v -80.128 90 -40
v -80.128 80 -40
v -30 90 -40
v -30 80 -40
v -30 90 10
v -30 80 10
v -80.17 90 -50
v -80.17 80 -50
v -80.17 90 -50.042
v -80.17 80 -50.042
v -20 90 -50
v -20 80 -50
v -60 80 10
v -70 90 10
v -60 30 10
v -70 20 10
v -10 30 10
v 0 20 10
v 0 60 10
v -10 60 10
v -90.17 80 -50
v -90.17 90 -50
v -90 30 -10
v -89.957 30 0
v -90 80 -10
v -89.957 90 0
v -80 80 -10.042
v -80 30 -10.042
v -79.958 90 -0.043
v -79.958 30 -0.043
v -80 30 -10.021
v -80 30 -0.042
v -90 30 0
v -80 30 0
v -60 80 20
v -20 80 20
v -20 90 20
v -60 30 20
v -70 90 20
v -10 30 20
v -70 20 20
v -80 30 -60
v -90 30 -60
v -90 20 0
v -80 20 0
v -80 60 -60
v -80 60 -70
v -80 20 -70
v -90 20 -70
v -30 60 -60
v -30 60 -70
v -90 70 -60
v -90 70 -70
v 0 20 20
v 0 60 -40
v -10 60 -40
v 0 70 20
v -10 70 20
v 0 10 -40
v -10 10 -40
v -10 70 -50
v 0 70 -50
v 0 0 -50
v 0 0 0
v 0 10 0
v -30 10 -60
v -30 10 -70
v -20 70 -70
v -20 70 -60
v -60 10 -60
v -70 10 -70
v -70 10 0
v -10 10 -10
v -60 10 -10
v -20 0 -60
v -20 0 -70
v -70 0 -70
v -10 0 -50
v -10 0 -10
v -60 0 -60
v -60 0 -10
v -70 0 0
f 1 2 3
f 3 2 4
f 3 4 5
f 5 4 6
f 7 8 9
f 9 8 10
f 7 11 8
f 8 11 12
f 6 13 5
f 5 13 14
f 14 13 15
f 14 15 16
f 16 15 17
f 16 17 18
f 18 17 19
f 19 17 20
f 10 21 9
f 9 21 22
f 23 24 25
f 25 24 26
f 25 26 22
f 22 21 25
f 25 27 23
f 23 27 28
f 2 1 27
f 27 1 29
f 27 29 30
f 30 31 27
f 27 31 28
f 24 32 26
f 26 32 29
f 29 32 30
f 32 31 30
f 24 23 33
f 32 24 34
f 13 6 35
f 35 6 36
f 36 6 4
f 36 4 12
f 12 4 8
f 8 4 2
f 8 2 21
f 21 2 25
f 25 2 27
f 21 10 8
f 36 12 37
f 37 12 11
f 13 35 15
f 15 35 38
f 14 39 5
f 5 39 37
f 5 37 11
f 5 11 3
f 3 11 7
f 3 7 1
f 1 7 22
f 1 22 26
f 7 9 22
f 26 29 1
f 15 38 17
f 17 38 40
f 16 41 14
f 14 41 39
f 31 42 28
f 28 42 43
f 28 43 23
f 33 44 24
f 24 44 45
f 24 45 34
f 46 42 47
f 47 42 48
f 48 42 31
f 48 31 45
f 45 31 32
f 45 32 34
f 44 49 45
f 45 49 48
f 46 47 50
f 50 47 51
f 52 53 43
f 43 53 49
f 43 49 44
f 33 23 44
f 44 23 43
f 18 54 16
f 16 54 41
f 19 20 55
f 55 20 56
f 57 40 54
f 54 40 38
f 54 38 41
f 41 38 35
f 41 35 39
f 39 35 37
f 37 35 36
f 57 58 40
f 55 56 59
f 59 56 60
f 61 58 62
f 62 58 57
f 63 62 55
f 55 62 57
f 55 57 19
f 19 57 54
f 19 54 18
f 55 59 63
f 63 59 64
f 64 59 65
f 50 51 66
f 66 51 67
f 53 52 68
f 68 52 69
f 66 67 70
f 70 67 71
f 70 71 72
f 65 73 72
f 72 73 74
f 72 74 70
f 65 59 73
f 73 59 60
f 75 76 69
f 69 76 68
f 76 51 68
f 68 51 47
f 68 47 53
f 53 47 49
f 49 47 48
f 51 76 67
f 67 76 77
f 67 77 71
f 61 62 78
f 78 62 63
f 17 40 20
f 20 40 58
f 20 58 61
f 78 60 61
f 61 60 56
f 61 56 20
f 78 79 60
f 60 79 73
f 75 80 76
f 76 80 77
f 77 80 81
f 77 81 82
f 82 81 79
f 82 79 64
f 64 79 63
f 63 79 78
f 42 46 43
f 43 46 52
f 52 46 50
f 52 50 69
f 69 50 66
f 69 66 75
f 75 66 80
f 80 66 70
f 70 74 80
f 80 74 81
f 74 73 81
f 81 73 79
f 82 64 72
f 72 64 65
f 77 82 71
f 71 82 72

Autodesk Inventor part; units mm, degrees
ref_plane "YZ Plane" through (0, 0, 0) normal (1, 0, 0) x (0, 1, 0)
ref_plane "XZ Plane" through (0, 0, 0) normal (0, 1, 0) x (-1, 0, 0)
ref_plane "XY Plane" through (0, 0, 0) normal (0, 0, 1) x (1, 0, 0)
sketch "Sketch1" plane through (0, 0, 0) normal (0, 1, 0) x (-1, 0, 0)
  line L0 (0, 0) -> (0, -70)
  line L1 (0, -70) -> (70, -70)
  line L2 (70, -70) -> (70, 0)
  line L3 (70, 0) -> (0, 0)
  dimension "d0" = 70
  dimension "d1" = 70
  dimension "d2" = 70
extrude "Extrusion1" add sketch "Sketch1" along normal blind 10
sketch "Sketch2" plane through (0, 10, 0) normal (0, 1, 0) x (1, 0, 0)
  line L0 (-10, 10) -> (-10, 60)
  line L1 (-10, 60) -> (-60, 60)
  line L2 (-60, 60) -> (-60, 10)
  line L3 (-60, 10) -> (-10, 10)
  point P0 (0, 0)
  dimension "d7" = 50
  dimension "d8" = 50
  dimension "d9" = 50
extrude "Extrusion2" cut sketch "Sketch2" against normal blind 10
sketch "Sketch3" plane through (0, 10, 0) normal (0, 1, 0) x (1, 0, 0)
  line L0 (0, 70) -> (-70, 70) projected
  line L1 (0, 70) -> (0, 60)
  line L2 (0, 0) -> (0, 70) projected
  line L3 (0, 60) -> (-10, 60)
  line L4 (-10, 60) -> (-10, 70)
  dimension "d12" = 10
  dimension "d13" = 10
  dimension "d14" = 10
extrude "Extrusion3" cut sketch "Sketch3" against normal blind 10
sketch "Sketch4" plane through (0, 10, 0) normal (0, 1, 0) x (1, 0, 0)
  line L0 (-10, 60) -> (-60, 60) projected
  line L1 (-10, 60) -> (-10, 50)
  line L2 (-10, 60) -> (-10, 10) projected
  line L3 (-10, 50) -> (0, 50)
  line L4 (0, 0) -> (0, 60) projected
  line L5 (0, 50) -> (0, 60)
  line L6 (-10, 60) -> (0, 60) projected
  line L7 (0, 60) -> (-10, 60)
  dimension "d17" = 10
  dimension "d18" = 10
  dimension "d19" = 10
  dimension "d20" = 10
extrude "Extrusion4" cut sketch "Sketch4" against normal blind 10
sketch "Sketch5" plane through (0, 10, 0) normal (0, 1, 0) x (1, 0, 0)
  line L0 (-10, 60) -> (-10, 70) projected
  line L1 (-10, 60) -> (-10, 70)
  line L2 (-10, 70) -> (-20, 70)
  line L3 (-10, 70) -> (-70, 70) projected
  line L4 (-20, 70) -> (-20, 60)
  line L5 (-60, 60) -> (-10, 60) projected
  line L6 (-20, 60) -> (-10, 60)
  point P0 (0, 0)
  dimension "d23" = 10
  dimension "d24" = 10
  dimension "d25" = 10
  dimension "d26" = 10
extrude "Extrusion5" cut sketch "Sketch5" against normal blind 10
sketch "Sketch6" plane through (0, 10, 0) normal (0, 1, 0) x (1, 0, 0)
  line L0 (-10, 50) -> (0, 50) projected
  line L1 (-10, 50) -> (-10, 40)
  line L2 (-10, 40) -> (0, 40)
  line L3 (0, 0) -> (0, 50) projected
  line L4 (0, 40) -> (0, 50)
  line L5 (0, 50) -> (-10, 50)
  dimension "d29" = 10
  dimension "d30" = 10
  dimension "d31" = 10
  dimension "d32" = 10
extrude "Extrusion6" add sketch "Sketch6" along normal blind 70
sketch "Sketch7" plane through (0, 10, 0) normal (0, 1, 0) x (1, 0, 0)
  line L0 (-20, 60) -> (-30, 60)
  line L1 (-60, 60) -> (-20, 60) projected
  line L2 (-30, 60) -> (-30, 70)
  line L3 (-20, 70) -> (-70, 70) projected
  line L4 (-30, 70) -> (-20, 70)
  line L5 (-20, 70) -> (-20, 60)
  point P0 (0, 0)
  dimension "d35" = 10
  dimension "d36" = 10
  dimension "d37" = 10
  dimension "d38" = 10
extrude "Extrusion7" add sketch "Sketch7" along normal blind 60
sketch "Sketch8" plane through (0, 80, 0) normal (0, 1, 0) x (1, 0, 0)
  line L0 (0, 40) -> (-10, 40) projected
  line L1 (0, 40) -> (0, 50)
  line L2 (-10, 50) -> (0, 50) projected
  line L3 (0, 50) -> (-10, 50)
  line L4 (-10, 50) -> (-10, 40)
  line L5 (-10, 40) -> (0, 40)
  point P0 (0, 0)
  dimension "d41" = 10
  dimension "d42" = 10
  dimension "d43" = 10
  dimension "d44" = 10
extrude "Extrusion8" cut sketch "Sketch8" against normal blind 10
sketch "Sketch9" plane through (-10, 10, -40) normal (0, 0, 1) x (1, 0, 0)
  line L0 (10, 60) -> (0, 60) projected
  line L1 (0, 60) -> (0, 50)
  line L2 (0, 60) -> (0, -10) projected
  line L3 (0, 50) -> (10, 50)
  line L4 (10, -10) -> (10, 60) projected
  line L5 (10, 50) -> (10, 60)
  line L6 (10, 60) -> (0, 60)
  dimension "d47" = 10
  dimension "d48" = 10
  dimension "d49" = 10
  dimension "d50" = 10
extrude "Extrusion9" add sketch "Sketch9" along normal blind 60
sketch "Sketch10" plane through (-10, 60, -40) normal (0, -1, 0) x (1, 0, 0)
  line L0 (10, 60) -> (0, 60) projected
  line L1 (0, 60) -> (10, 60)
  line L2 (10, 60) -> (10, 50)
  line L3 (10, -10) -> (10, 60) projected
  line L4 (10, 50) -> (0, 50)
  line L5 (0, 60) -> (0, -10) projected
  line L6 (0, 50) -> (0, 60)
  point P0 (10, 40)
  dimension "d53" = 10
  dimension "d54" = 10
  dimension "d55" = 10
  dimension "d56" = 10
extrude "Extrusion10" add sketch "Sketch10" along normal blind 40
sketch "Sketch11" plane through (-10, 0, -10) normal (-1, 0, 0) x (0, 0, 1)
  line L0 (20, 20) -> (30, 20) projected
  line L1 (20, 20) -> (30, 20)
  line L2 (30, 20) -> (30, 30)
  line L3 (30, 70) -> (30, 20) projected
  line L4 (30, 30) -> (20, 30)
  line L5 (20, 60) -> (20, 20) projected
  line L6 (20, 30) -> (20, 20)
  point P0 (10, 0)
  dimension "d59" = 10
  dimension "d60" = 10
  dimension "d61" = 10
  dimension "d62" = 10
extrude "Extrusion11" add sketch "Sketch11" along normal blind 50
sketch "Sketch12" plane through (-30, 10, -70) normal (-1, 0, 0) x (0, 0, 1)
  line L0 (0, 60) -> (0, -10) projected
  line L1 (10, 60) -> (0, 60) projected
  line L2 (0, 60) -> (10, 60)
  line L3 (10, 60) -> (10, 50)
  line L4 (10, -10) -> (10, 60) projected
  line L5 (10, 50) -> (0, 50)
  line L6 (0, 50) -> (0, 60)
  line L7 (0, 60) -> (0, 55)
  point P0 (70, -10)
  dimension "d65" = 10
  dimension "d66" = 10
  dimension "d67" = 10
  dimension "d68" = 10
extrude "Extrusion12" add sketch "Sketch12" along normal blind 60
sketch "Sketch13" plane through (-90, 10, -70) normal (-1, 0, 0) x (0, 0, 1)
  point P0 (70, -10)
sketch "Sketch14" plane through (-30, 60, -70) normal (0, -1, 0) x (1, 0, 0)
  line L0 (10, 0) -> (-60, 0) projected
  line L1 (-60, 0) -> (-60, 10) projected
  line L2 (-60, 0) -> (-60, 10)
  line L3 (-60, 10) -> (-50, 10)
  line L4 (10, 10) -> (-60, 10) projected
  line L5 (-50, 10) -> (-50, 0)
  line L6 (-50, 0) -> (-60, 0)
  point P0 (30, 70)
  dimension "d71" = 10
  dimension "d72" = 10
  dimension "d73" = 10
  dimension "d74" = 10
extrude "Extrusion13" add sketch "Sketch14" along normal blind 40
sketch "Sketch15" plane through (-60, 0, -60) normal (0, 0, 1) x (1, 0, 0)
  line L0 (-20, 20) -> (-30, 20) projected
  line L1 (-30, 20) -> (-20, 20)
  line L2 (-20, 20) -> (-20, 30)
  line L3 (-20, 60) -> (-20, 20) projected
  line L4 (-20, 30) -> (-30, 30)
  line L5 (-30, 70) -> (-30, 20) projected
  line L6 (-30, 30) -> (-30, 20)
  point P0 (60, 0)
  dimension "d77" = 10
  dimension "d78" = 10
  dimension "d79" = 10
  dimension "d80" = 10
extrude "Extrusion14" add sketch "Sketch15" along normal blind 60
sketch "Sketch16" plane through (-60, 0, -10) normal (-1, 0, 0) x (0, 0, 1)
  point P0 (10, 0)
sketch "Sketch17" plane through (-60, 0, -10) normal (-1, 0, 0) x (0, 0, 1)
  line L0 (20, 20) -> (30, 20) projected
  line L1 (30, 20) -> (20, 20)
  line L2 (20, 20) -> (20, 30)
  line L3 (20, 60) -> (20, 20) projected
  line L4 (20, 30) -> (30, 30)
  line L5 (30, 70) -> (30, 20) projected
  line L6 (30, 30) -> (30, 20)
  point P0 (10, 0)
  dimension "d83" = 10
  dimension "d84" = 10
  dimension "d85" = 10
  dimension "d86" = 10
extrude "Extrusion15" add sketch "Sketch17" along normal blind 10
sketch "Sketch18" plane through (-90, 30, -60) normal (0, 1, 0) x (1, 0, 0)
  line L0 (90, -70) -> (20, -70) projected
  line L1 (20, -70) -> (20, -80)
  line L2 (20, -80) -> (30, -80)
  line L3 (30, -80) -> (30, -70)
  line L4 (30, -70) -> (20, -70)
  point P0 (90, -60)
  dimension "d89" = 10
  dimension "d90" = 10
  dimension "d91" = 10
  dimension "d92" = 10
extrude "Extrusion16" add sketch "Sketch18" along normal blind 60
sketch "Sketch19" plane through (-60, 30, 10) normal (1, 0, 0) x (0, 0, -1)
  line L0 (-10, 60) -> (0, 60)
  line L1 (0, 60) -> (0, 50)
  line L2 (0, 50) -> (-10, 50)
  line L3 (-10, 0) -> (-10, 60) projected
  line L4 (-10, 50) -> (-10, 60)
  point P0 (10, -30)
  dimension "d95" = 10
  dimension "d96" = 10
  dimension "d97" = 10
  dimension "d98" = 10
extrude "Extrusion17" add sketch "Sketch19" along normal blind 40
sketch "Sketch20" plane through (-90, 30, -60) normal (0, 1, 0) x (1, 0, 0)
  line L0 (0.0426, -60) -> (0, -50.0001)
  line L1 (0, 0) -> (0, -60) projected
  line L2 (0, -50.0001) -> (9.9999, -49.9575)
  line L3 (9.9999, -49.9575) -> (10.0425, -59.9574)
  line L4 (10.0425, -59.9574) -> (0.0426, -60)
  point P0 (90, -60)
  dimension "d101" = 10
  dimension "d102" = 10
  dimension "d103" = 10
  dimension "d104" = 10
extrude "Extrusion18" add sketch "Sketch20" along normal blind 60
sketch "Sketch21" plane through (-90, 30, -9.9999) normal (-0.0042561, 0, -0.9999909) x (-0.9999909, 0, 0.0042561)
  point P0 (-89.9566, -30)
sketch "Sketch22" plane through (-90, 30, -9.9999) normal (-0.0042561, 0, -0.9999909) x (-0.9999909, 0, 0.0042561)
  line L0 (0, 60) -> (-10, 60) projected
  line L1 (-10, 60) -> (0, 60)
  line L2 (0, 60) -> (0, 50)
  line L3 (0, 0) -> (0, 60) projected
  line L4 (0, 50) -> (-10, 50)
  line L5 (-10, 0) -> (-10, 60) projected
  line L6 (-10, 50) -> (-10, 60)
  point P0 (-89.9566, -30)
  dimension "d107" = 10
  dimension "d108" = 10
  dimension "d109" = 10
  dimension "d110" = 10
extrude "Extrusion19" add sketch "Sketch22" along normal blind 40
sketch "Sketch23" plane through (0, 60, 10) normal (0, 0, -1) x (-1, 0, 0)
  line L0 (70, 30) -> (20, 30) projected
  line L1 (20, 20) -> (20, 30) projected
  line L2 (20, 30) -> (20, 20)
  line L3 (20, 20) -> (30, 20)
  line L4 (60, 20) -> (20, 20) projected
  line L5 (30, 20) -> (30, 30)
  line L6 (30, 30) -> (20, 30)
  point P0 (0, -60)
  dimension "d113" = 10
  dimension "d114" = 10
  dimension "d115" = 10
  dimension "d116" = 10
extrude "Extrusion20" add sketch "Sketch23" along normal blind 60
sketch "Sketch24" plane through (-79.9575, 30, -0.0426) normal (0.9999909, 0, -0.0042561) x (-0.0042561, 0, -0.9999909)
  point P0 (-0.3829, -30)
sketch "Sketch25" plane through (-30, 80, 10) normal (-1, 0, 0) x (0, 0, 1)
  point P0 (-10, -80)
sketch "Sketch26" plane through (-30, 80, 10) normal (-1, 0, 0) x (0, 0, 1)
  line L0 (0, 10) -> (-60, 10) projected
  line L1 (-60, 10) -> (-60, 0)
  line L2 (-60, 0) -> (-50, 0)
  line L3 (0, 0) -> (-60, 0) projected
  line L4 (-50, 0) -> (-50, 10)
  line L5 (-50, 10) -> (-60, 10)
  point P0 (-10, -80)
  dimension "d119" = 10
  dimension "d120" = 10
  dimension "d121" = 10
  dimension "d122" = 10
extrude "Extrusion21" add sketch "Sketch26" along normal blind 60
properties part number "WeirdCube"
